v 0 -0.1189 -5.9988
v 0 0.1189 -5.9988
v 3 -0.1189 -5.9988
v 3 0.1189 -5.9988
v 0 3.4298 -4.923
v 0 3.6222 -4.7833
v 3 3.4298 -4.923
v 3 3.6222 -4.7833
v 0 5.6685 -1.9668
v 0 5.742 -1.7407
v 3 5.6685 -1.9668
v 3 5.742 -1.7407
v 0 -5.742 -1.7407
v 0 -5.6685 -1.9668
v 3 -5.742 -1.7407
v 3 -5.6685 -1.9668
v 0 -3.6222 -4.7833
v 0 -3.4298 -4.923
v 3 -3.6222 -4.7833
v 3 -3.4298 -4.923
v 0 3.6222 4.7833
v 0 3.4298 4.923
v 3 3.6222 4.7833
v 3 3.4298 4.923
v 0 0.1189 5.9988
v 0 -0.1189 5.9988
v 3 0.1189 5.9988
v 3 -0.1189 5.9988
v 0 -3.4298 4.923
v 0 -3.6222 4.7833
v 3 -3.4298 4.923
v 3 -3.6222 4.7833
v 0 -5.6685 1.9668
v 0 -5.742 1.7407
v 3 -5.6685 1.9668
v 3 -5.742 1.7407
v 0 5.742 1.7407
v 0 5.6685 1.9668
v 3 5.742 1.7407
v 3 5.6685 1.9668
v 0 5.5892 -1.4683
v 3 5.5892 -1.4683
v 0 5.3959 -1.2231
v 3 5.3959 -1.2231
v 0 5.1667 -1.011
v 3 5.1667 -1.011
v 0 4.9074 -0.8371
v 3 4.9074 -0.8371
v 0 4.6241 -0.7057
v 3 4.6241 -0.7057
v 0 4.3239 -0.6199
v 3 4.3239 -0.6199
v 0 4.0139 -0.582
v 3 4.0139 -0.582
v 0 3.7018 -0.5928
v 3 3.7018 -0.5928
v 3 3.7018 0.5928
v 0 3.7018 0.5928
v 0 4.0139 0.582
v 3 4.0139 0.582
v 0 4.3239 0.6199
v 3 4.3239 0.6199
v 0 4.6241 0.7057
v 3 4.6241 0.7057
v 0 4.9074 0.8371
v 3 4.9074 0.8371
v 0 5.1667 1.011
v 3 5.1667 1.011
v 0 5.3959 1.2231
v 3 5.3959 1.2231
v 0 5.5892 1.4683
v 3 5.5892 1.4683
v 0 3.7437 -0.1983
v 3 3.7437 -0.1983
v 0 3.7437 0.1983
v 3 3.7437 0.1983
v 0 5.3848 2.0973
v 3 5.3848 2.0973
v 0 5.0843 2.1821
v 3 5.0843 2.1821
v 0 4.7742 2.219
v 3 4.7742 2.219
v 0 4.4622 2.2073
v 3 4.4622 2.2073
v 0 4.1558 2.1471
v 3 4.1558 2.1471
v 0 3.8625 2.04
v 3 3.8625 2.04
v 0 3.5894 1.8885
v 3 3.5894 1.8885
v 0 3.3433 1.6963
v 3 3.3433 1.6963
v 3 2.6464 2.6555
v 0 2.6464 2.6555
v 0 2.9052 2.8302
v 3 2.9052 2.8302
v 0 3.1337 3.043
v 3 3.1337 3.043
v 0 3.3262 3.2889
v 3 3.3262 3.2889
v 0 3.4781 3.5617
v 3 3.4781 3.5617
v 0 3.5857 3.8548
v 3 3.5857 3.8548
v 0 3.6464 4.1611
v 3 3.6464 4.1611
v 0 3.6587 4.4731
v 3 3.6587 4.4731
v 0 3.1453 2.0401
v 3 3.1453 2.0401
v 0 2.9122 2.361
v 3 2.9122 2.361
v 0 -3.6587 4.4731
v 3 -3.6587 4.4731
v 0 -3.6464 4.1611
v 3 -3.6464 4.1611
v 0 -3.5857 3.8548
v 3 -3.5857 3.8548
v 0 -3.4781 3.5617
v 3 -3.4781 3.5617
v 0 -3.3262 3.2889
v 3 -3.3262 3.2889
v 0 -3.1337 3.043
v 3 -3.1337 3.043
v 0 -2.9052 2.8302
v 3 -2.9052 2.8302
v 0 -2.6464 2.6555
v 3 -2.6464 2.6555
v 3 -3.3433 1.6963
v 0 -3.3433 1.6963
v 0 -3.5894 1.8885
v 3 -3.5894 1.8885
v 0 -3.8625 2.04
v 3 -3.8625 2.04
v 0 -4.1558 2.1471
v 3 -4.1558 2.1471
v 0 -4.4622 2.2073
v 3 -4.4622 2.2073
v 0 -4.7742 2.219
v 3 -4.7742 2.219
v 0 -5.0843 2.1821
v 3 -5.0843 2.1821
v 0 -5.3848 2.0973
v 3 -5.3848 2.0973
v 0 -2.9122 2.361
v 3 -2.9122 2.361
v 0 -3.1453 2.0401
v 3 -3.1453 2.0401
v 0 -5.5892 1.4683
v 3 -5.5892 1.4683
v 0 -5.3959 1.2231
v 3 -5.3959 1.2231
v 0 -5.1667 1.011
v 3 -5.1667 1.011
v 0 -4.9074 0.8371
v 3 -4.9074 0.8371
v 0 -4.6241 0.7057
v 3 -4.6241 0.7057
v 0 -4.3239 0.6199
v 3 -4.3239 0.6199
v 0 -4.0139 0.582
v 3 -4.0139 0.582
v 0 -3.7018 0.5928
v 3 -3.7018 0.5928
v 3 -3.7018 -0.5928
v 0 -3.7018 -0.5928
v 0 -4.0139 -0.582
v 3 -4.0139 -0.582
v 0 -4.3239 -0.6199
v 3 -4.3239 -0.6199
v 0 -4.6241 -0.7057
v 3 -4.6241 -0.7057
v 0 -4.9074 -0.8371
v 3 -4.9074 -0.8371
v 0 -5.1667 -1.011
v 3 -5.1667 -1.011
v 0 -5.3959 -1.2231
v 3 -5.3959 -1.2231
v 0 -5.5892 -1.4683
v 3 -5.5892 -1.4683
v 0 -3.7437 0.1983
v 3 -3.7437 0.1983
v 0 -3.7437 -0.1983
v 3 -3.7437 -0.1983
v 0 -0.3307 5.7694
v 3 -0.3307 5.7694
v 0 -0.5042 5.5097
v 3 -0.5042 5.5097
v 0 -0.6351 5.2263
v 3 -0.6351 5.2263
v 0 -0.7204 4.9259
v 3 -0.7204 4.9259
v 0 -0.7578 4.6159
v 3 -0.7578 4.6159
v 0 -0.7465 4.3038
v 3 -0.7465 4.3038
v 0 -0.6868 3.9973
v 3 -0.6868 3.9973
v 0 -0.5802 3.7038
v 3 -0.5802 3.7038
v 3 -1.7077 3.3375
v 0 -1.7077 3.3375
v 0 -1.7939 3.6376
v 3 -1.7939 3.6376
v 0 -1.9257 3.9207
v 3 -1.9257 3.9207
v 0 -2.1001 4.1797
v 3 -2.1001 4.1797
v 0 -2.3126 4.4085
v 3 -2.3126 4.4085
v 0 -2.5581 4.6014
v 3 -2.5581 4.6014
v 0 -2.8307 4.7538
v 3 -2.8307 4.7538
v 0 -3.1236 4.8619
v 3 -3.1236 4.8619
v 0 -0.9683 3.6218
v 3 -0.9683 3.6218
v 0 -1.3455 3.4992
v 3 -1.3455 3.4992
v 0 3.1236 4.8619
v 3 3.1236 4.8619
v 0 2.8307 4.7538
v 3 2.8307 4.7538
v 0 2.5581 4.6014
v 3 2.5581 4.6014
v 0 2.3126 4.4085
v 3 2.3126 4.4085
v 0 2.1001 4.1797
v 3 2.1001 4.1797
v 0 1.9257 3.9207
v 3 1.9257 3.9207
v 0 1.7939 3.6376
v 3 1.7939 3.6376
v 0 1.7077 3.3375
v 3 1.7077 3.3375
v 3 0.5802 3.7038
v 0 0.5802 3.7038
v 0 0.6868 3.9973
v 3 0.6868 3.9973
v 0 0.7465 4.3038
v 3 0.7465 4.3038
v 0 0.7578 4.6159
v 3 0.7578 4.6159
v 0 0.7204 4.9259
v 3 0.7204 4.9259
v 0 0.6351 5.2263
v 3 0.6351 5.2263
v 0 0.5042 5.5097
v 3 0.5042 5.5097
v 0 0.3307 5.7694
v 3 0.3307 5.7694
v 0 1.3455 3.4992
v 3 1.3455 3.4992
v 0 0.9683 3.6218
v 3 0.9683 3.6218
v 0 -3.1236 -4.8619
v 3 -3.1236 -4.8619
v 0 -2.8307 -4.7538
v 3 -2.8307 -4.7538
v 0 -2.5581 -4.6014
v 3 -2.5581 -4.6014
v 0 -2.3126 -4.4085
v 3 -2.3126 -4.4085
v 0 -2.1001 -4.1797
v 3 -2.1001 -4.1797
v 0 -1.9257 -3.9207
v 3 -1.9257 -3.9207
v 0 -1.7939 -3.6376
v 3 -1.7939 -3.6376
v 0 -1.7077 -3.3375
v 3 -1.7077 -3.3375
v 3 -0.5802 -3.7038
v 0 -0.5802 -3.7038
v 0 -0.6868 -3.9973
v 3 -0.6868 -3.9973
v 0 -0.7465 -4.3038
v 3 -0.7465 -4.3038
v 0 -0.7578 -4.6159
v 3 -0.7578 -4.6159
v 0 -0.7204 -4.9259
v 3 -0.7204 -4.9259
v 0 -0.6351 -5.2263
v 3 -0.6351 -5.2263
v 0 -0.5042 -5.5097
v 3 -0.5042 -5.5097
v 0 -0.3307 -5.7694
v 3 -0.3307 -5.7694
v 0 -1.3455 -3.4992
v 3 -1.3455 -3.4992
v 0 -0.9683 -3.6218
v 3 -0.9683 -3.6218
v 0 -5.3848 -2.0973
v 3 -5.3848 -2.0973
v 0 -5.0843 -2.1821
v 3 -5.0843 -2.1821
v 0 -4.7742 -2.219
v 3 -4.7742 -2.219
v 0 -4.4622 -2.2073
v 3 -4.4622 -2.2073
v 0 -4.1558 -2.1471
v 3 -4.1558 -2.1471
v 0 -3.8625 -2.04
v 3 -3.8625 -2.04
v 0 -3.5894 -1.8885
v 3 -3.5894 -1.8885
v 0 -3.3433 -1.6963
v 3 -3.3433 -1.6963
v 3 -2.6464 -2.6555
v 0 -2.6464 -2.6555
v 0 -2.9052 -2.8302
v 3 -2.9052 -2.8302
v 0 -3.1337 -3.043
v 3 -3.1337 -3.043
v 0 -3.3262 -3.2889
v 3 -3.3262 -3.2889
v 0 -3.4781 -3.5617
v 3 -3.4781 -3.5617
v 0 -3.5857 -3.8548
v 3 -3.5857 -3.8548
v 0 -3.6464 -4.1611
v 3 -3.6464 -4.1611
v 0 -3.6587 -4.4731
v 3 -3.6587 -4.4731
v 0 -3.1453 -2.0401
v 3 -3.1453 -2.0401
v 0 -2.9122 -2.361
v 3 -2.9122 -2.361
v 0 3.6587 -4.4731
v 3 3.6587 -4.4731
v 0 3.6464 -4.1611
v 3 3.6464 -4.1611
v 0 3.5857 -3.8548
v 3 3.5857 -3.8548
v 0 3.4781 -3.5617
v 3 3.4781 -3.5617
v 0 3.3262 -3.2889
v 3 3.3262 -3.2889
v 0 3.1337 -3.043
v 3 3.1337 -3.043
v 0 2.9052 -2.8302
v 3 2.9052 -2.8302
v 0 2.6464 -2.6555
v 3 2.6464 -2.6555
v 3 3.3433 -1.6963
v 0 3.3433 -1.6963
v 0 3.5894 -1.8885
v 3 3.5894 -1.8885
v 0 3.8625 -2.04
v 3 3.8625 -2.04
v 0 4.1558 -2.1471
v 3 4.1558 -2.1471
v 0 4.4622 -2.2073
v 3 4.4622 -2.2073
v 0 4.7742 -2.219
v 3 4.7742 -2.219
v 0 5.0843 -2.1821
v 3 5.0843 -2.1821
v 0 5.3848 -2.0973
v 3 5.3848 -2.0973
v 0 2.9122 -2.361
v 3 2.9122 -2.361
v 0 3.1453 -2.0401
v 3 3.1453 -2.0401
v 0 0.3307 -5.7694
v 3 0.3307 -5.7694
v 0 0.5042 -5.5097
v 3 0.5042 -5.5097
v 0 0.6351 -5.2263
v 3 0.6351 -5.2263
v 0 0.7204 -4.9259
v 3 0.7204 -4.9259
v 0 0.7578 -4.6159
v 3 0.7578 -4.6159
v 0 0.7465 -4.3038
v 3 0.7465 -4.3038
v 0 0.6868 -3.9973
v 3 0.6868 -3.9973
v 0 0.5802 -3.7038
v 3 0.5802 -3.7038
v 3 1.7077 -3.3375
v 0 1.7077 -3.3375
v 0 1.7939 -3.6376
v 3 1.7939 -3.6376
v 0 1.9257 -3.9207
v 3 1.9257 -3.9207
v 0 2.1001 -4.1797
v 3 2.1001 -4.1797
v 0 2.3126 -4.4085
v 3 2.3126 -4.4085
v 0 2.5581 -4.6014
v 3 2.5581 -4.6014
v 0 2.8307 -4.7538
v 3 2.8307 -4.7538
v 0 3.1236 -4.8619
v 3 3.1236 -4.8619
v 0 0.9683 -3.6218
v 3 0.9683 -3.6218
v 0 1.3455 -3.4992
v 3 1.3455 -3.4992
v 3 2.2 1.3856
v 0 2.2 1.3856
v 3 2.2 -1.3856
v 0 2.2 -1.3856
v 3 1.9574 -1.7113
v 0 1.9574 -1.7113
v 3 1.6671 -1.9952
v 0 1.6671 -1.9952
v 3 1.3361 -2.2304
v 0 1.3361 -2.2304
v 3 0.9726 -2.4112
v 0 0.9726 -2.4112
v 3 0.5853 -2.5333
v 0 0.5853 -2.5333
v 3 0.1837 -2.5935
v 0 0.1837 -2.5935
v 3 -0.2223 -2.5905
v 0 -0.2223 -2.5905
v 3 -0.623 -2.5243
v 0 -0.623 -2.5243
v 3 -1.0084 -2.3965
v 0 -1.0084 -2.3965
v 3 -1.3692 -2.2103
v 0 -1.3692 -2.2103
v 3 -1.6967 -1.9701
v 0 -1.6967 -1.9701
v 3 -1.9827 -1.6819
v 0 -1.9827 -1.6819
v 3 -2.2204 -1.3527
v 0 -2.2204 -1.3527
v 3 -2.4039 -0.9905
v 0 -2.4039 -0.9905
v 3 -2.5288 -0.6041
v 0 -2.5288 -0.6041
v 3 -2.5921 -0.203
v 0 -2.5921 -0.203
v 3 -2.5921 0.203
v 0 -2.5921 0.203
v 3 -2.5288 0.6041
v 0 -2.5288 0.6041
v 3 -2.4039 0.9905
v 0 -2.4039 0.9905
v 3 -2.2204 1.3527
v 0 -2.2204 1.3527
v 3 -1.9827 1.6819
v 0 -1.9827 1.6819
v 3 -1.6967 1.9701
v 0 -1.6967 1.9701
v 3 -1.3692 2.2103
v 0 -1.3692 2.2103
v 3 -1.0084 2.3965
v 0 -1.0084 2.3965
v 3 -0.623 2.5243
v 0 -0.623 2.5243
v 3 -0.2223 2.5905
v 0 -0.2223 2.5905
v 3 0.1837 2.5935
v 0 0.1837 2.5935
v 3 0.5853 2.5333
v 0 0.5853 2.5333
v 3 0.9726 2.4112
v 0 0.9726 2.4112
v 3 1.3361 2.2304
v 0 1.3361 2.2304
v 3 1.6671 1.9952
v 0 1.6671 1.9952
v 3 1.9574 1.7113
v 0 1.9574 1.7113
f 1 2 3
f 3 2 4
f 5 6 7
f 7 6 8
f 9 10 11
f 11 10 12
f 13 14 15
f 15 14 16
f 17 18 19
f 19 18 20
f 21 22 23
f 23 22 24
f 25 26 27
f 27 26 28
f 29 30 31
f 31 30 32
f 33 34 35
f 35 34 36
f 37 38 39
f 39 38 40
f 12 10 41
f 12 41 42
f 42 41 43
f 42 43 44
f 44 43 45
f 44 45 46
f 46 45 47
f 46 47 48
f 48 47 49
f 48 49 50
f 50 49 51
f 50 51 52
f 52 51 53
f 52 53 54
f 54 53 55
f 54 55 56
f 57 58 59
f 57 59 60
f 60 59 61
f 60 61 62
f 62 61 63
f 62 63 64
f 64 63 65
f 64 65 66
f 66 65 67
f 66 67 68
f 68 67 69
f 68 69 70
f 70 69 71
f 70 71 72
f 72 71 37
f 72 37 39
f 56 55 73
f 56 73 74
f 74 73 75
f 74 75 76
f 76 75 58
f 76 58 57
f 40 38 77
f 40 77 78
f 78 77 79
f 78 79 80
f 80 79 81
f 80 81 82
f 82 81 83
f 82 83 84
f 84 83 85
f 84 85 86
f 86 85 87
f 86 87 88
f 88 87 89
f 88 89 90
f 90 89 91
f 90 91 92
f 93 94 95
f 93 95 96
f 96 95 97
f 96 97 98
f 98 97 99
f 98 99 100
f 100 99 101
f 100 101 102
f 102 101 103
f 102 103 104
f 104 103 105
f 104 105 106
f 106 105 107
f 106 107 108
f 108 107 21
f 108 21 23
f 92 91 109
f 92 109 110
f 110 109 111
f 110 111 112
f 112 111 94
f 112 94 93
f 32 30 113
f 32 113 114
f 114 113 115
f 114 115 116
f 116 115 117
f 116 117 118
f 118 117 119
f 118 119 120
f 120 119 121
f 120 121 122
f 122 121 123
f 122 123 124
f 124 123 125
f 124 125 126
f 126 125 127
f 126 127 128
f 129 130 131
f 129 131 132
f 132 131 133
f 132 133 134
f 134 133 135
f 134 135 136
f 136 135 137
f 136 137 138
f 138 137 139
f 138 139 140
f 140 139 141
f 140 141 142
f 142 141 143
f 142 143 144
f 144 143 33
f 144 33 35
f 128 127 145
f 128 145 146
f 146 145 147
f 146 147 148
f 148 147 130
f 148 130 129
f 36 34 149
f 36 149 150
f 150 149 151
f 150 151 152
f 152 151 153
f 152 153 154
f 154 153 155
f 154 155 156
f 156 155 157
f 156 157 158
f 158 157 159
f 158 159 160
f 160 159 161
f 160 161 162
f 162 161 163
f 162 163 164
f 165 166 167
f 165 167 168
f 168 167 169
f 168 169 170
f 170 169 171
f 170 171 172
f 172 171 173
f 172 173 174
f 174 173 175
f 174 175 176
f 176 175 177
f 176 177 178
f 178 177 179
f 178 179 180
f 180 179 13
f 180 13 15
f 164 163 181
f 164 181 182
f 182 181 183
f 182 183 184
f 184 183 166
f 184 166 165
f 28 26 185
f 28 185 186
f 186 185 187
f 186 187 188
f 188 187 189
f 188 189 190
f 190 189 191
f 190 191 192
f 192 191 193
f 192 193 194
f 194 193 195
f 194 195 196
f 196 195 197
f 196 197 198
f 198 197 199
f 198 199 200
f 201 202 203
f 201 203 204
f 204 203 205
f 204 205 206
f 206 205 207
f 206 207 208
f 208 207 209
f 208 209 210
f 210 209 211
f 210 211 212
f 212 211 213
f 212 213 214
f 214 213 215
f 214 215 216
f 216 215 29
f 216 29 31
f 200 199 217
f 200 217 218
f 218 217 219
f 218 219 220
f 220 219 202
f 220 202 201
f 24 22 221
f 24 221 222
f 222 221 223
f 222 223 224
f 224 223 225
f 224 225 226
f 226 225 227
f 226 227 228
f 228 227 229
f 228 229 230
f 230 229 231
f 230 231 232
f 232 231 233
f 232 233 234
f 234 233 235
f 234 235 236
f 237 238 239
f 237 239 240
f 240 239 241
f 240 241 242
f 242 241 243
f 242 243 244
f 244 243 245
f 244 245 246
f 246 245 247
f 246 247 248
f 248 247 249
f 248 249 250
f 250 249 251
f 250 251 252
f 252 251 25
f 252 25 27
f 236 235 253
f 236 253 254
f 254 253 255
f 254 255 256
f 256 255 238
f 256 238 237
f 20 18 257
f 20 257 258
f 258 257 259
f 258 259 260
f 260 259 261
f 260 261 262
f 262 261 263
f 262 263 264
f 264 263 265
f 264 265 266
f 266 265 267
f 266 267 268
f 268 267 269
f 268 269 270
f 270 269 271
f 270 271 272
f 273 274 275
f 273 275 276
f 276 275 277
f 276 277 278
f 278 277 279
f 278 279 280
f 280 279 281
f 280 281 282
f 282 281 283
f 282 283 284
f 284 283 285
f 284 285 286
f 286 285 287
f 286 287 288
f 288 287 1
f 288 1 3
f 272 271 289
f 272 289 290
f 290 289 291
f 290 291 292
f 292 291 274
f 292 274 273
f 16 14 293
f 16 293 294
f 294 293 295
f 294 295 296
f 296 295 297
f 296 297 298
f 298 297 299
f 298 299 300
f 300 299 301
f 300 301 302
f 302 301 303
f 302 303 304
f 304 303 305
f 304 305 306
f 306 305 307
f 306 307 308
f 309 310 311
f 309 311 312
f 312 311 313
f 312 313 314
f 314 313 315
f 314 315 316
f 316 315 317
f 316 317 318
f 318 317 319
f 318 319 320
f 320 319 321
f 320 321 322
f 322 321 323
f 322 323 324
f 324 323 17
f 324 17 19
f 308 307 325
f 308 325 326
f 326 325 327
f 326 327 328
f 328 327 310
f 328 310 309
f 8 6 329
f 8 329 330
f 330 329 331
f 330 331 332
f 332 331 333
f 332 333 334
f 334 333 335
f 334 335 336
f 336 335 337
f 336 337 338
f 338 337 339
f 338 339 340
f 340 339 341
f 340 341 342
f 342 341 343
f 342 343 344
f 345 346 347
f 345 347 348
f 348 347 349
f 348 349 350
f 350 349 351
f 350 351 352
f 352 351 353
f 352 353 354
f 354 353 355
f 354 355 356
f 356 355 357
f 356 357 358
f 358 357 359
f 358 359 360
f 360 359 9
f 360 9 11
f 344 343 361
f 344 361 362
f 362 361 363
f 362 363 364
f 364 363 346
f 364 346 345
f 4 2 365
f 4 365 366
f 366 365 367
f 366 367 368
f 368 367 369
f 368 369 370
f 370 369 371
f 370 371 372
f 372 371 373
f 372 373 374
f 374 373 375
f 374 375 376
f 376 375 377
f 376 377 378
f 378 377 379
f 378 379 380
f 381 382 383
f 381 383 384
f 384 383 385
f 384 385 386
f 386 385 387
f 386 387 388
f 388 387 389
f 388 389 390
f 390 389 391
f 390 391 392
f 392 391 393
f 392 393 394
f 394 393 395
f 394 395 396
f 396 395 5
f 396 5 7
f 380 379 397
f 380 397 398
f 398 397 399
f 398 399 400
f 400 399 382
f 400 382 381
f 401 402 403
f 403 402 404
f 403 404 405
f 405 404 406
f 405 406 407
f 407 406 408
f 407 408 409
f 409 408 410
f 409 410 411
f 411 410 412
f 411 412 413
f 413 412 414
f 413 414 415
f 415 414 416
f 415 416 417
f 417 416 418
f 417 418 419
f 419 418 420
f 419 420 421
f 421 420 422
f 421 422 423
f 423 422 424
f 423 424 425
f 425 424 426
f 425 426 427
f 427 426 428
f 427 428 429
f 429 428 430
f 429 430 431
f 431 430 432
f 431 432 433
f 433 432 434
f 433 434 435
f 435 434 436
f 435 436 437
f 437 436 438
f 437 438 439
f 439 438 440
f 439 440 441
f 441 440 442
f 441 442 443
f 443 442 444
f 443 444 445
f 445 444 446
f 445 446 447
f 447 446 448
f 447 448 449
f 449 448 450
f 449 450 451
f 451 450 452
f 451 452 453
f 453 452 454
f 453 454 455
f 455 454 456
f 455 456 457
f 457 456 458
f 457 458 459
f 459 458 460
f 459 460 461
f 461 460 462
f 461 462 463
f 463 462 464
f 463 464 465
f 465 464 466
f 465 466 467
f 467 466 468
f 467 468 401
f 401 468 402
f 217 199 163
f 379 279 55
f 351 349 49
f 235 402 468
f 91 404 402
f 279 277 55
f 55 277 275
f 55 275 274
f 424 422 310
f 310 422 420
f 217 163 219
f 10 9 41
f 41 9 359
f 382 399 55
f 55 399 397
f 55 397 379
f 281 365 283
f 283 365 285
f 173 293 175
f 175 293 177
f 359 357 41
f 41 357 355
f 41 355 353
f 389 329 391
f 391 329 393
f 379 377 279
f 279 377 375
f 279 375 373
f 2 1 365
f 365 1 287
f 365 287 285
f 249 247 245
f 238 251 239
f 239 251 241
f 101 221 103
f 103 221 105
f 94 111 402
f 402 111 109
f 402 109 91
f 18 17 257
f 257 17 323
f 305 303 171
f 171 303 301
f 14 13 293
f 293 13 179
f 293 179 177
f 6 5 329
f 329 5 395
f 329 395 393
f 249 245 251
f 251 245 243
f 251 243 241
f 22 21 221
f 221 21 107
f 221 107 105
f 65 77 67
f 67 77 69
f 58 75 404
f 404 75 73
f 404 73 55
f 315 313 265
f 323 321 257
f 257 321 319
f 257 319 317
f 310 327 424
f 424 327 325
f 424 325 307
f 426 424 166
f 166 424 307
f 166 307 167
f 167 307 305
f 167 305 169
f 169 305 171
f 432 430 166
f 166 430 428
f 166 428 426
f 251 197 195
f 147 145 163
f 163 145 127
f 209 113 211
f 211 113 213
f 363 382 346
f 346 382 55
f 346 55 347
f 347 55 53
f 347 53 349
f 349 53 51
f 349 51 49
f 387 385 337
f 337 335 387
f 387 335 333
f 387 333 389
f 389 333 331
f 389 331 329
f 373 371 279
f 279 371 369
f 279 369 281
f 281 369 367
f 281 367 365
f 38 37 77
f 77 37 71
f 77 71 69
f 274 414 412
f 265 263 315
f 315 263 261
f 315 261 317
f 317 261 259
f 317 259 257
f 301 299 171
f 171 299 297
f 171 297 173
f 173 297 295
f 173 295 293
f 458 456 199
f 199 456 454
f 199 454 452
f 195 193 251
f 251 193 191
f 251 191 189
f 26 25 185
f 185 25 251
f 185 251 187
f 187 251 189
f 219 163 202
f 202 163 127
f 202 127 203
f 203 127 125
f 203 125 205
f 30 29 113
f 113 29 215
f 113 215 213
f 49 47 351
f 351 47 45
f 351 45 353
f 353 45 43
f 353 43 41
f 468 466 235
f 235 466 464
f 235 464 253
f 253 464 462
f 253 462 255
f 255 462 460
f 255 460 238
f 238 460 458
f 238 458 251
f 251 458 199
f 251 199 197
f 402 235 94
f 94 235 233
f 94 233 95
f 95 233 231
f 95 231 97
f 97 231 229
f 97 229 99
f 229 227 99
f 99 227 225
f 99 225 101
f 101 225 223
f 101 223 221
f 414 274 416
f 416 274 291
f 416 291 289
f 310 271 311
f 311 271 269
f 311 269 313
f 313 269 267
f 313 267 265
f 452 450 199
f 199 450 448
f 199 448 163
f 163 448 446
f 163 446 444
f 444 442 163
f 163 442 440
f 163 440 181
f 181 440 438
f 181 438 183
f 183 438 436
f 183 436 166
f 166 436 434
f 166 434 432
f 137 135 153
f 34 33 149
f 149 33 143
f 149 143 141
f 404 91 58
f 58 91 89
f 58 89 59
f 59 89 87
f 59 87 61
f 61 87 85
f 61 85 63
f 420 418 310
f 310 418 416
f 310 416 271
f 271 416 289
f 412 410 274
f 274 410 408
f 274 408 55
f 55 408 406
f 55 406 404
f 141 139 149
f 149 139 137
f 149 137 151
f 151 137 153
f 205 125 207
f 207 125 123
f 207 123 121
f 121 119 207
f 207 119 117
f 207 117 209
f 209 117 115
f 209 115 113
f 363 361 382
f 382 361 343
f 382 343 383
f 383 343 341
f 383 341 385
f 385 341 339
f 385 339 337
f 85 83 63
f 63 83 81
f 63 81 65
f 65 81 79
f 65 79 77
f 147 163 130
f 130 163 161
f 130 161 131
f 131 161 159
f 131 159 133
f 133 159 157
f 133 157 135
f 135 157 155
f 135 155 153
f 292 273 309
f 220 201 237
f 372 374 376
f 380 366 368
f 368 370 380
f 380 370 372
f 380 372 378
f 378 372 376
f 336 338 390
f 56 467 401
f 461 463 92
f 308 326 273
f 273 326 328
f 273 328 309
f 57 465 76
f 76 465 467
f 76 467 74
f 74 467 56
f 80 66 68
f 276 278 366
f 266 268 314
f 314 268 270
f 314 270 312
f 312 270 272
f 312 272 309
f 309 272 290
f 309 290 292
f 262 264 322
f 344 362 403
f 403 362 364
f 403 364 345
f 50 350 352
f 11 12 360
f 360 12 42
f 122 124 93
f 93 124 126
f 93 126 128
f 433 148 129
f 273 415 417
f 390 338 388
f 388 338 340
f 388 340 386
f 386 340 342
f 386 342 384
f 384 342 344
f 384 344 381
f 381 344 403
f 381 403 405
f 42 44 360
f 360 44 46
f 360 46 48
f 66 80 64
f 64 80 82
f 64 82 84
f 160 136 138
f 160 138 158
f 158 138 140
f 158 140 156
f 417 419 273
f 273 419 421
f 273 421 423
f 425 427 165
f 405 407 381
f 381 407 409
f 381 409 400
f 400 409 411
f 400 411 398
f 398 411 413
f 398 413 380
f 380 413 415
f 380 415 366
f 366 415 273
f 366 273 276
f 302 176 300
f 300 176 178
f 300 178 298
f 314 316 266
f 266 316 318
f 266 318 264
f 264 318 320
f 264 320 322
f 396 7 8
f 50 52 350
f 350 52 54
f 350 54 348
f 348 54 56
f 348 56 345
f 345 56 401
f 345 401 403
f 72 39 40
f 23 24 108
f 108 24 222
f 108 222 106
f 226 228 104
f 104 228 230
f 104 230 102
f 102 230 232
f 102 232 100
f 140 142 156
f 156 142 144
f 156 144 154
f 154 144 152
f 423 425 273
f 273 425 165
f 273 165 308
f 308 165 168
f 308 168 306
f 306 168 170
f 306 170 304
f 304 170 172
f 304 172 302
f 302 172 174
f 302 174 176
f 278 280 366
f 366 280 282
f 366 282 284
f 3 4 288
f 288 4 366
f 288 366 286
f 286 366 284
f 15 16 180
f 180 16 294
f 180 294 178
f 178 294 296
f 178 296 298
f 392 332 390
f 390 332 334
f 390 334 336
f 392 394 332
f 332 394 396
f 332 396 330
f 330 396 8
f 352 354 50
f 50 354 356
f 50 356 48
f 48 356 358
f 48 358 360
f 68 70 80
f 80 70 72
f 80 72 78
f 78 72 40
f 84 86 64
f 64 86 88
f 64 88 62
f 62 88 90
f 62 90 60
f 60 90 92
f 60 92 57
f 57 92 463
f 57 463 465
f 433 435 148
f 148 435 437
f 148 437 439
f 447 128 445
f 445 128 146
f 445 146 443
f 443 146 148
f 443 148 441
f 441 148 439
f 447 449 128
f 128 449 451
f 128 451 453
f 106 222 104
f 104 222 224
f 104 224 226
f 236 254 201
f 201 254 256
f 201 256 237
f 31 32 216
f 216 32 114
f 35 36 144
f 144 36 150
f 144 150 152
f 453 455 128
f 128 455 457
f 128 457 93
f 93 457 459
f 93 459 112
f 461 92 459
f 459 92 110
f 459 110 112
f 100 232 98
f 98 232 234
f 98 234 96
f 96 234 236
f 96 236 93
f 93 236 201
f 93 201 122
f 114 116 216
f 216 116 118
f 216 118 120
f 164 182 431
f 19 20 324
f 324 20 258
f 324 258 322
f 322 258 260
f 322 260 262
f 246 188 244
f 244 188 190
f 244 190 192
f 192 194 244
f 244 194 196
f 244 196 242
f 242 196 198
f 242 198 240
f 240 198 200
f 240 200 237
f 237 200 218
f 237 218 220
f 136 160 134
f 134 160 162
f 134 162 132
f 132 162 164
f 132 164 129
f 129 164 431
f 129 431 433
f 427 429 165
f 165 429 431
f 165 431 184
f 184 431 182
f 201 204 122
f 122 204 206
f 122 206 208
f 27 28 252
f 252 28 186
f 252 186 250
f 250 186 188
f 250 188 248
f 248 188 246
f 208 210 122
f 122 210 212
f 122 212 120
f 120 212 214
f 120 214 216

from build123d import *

# Parameters (mm, degrees)
BASPROSKE_W         = 10
BASPROSKE_H         = 6
TOOTHCUT_DEPTH      = 14.114877049
TEETHCUTS_COUNT     = 10
TEETHCUTS_ANGLE     = 324
BORSKE_R            = 2.5
BORE_DEPTH          = 50.0000508
SKETCH1_R           = 2.5
BOSS_EXTRUDE1_DEPTH = 10
CUT_EXTRUDE2_DEPTH  = 10
CUT_EXTRUDE4_DEPTH  = 12.8
CUT_EXTRUDE5_DEPTH  = 7


with BuildPart() as part:
    # BasProSke → Base-Revolve (revolve)
    with BuildSketch(Plane(origin=(0, 0, 0), x_dir=(1, 0, 0), z_dir=(0, 1, 0)), mode=Mode.PRIVATE) as base_revolve_sk:
        with Locations((5, 3)):
            Rectangle(BASPROSKE_W, BASPROSKE_H)
    revolve(base_revolve_sk.sketch.rotate(Axis((-10, 0, 0), (1, 0, 0)), 180), axis=Axis((-10, 0, 0), (1, 0, 0)))

    # TooCutSke → ToothCut (cut, through all)
    with BuildSketch(Plane(origin=(0, 0, 0), x_dir=(0, 0, -1), z_dir=(1, 0, 0))):
        with BuildLine():
            ThreePointArc((0.59278292, 3.701838653), (0, 3.749), (-0.59278292, 3.701838653))
            ThreePointArc((-0.59278292, 3.701838653), (-0.846593509, 4.924114224), (-1.775771316, 5.757784417))
            ThreePointArc((-1.775771316, 5.757784417), (0, 6.0254), (1.775771316, 5.757784417))
            ThreePointArc((1.775771316, 5.757784417), (0.846593509, 4.924114224), (0.59278292, 3.701838653))
        make_face()
    toothcut = extrude(amount=TOOTHCUT_DEPTH, mode=Mode.SUBTRACT)

    # TeethCuts: ToothCut ×10 about axis
    teethcuts_axis = Axis((-10, 0, 0), (1, 0, 0))
    for i in range(1, TEETHCUTS_COUNT):
        add(toothcut.rotate(teethcuts_axis, i * TEETHCUTS_ANGLE / (TEETHCUTS_COUNT - 1)), mode=Mode.SUBTRACT)

    # BorSke → Bore (cut, symmetric)
    with BuildSketch(Plane(origin=(0, 0, 0), x_dir=(0, 0, -1), z_dir=(1, 0, 0))):
        with Locations(Location((0, 0, 0), (0, 0, 180))):
            Circle(BORSKE_R)
    extrude(amount=BORE_DEPTH, both=True, mode=Mode.SUBTRACT)

    # Sketch1 → Boss-Extrude1 (add)
    with BuildSketch(Plane(origin=(10, 0, 0), x_dir=(0, 0, -1), z_dir=(1, 0, 0))):
        Circle(SKETCH1_R)
    extrude(amount=-BOSS_EXTRUDE1_DEPTH)

    # Sketch2 → Cut-Extrude2 (cut)
    with BuildSketch(Plane.ZY):
        with BuildLine():
            Line((1.187434209, 2.2), (-1.187434209, 2.2))
            ThreePointArc((-1.187434209, 2.2), (-1.280900948, -2.146926352), (2.5, 0))
            ThreePointArc((2.5, 0), (2.146926352, 1.280900948), (1.187434209, 2.2))
        make_face()
    extrude(amount=-CUT_EXTRUDE2_DEPTH, mode=Mode.SUBTRACT)

    # Sketch3 → Cut-Extrude4 (cut)
    with BuildSketch(Plane.ZY):
        with BuildLine():
            ThreePointArc((-1.385640646, 2.2), (0, -2.6), (1.385640646, 2.2))
            Line((1.385640646, 2.2), (-1.385640646, 2.2))
        make_face()
    extrude(amount=-CUT_EXTRUDE4_DEPTH, mode=Mode.SUBTRACT)

    # Sketch4 → Cut-Extrude5 (cut)
    with BuildSketch(Plane(origin=(10, 0, 0), x_dir=(0, 0, -1), z_dir=(1, 0, 0))):
        with BuildLine():
            ThreePointArc((5.99882193, 0.11889261), (4.925863873, 0.720361677), (3.703837769, 0.580160996))
            ThreePointArc((3.703837769, 0.580160996), (3.56551088, 1.158504712), (3.337477777, 1.707701113))
            ThreePointArc((3.337477777, 1.707701113), (4.408525556, 2.3125653), (4.92303221, 3.429832919))
            ThreePointArc((4.92303221, 3.429832919), (4.854101966, 3.526711514), (4.783265565, 3.622205204))
            ThreePointArc((4.783265565, 3.622205204), (3.561689615, 3.478134978), (2.655457622, 2.646421322))
            ThreePointArc((2.655457622, 2.646421322), (2.203606911, 3.033004712), (1.69631471, 3.343279438))
            ThreePointArc((1.69631471, 3.343279438), (2.207280316, 4.462170935), (1.966811514, 5.668478849))
            ThreePointArc((1.966811514, 5.668478849), (1.854101966, 5.706339098), (1.740664331, 5.741958524))
            ThreePointArc((1.740664331, 5.741958524), (0.837070982, 4.907378935), (0.59278292, 3.701838653))
            ThreePointArc((0.59278292, 3.701838653), (0, 3.749), (-0.59278292, 3.701838653))
            ThreePointArc((-0.59278292, 3.701838653), (-0.837070982, 4.907378935), (-1.740664331, 5.741958524))
            ThreePointArc((-1.740664331, 5.741958524), (-1.854101966, 5.706339098), (-1.966811514, 5.668478849))
            ThreePointArc((-1.966811514, 5.668478849), (-2.207280316, 4.462170935), (-1.69631471, 3.343279438))
            ThreePointArc((-1.69631471, 3.343279438), (-2.203606911, 3.033004712), (-2.655457622, 2.646421322))
            ThreePointArc((-2.655457622, 2.646421322), (-3.561689615, 3.478134978), (-4.783265565, 3.622205204))
            ThreePointArc((-4.783265565, 3.622205204), (-4.854101966, 3.526711514), (-4.92303221, 3.429832919))
            ThreePointArc((-4.92303221, 3.429832919), (-4.408525556, 2.3125653), (-3.337477777, 1.707701113))
            ThreePointArc((-3.337477777, 1.707701113), (-3.56551088, 1.158504712), (-3.703837769, 0.580160996))
            ThreePointArc((-3.703837769, 0.580160996), (-4.925863873, 0.720361677), (-5.99882193, 0.11889261))
            ThreePointArc((-5.99882193, 0.11889261), (-6, 0), (-5.99882193, -0.11889261))
            ThreePointArc((-5.99882193, -0.11889261), (-4.925863873, -0.720361677), (-3.703837769, -0.580160996))
            ThreePointArc((-3.703837769, -0.580160996), (-3.56551088, -1.158504712), (-3.337477777, -1.707701113))
            ThreePointArc((-3.337477777, -1.707701113), (-4.408525556, -2.3125653), (-4.92303221, -3.429832919))
            ThreePointArc((-4.92303221, -3.429832919), (-4.854101966, -3.526711514), (-4.783265565, -3.622205204))
            ThreePointArc((-4.783265565, -3.622205204), (-3.561689615, -3.478134978), (-2.655457622, -2.646421322))
            ThreePointArc((-2.655457622, -2.646421322), (-2.203606911, -3.033004712), (-1.69631471, -3.343279438))
            ThreePointArc((-1.69631471, -3.343279438), (-2.207280316, -4.462170935), (-1.966811514, -5.668478849))
            ThreePointArc((-1.966811514, -5.668478849), (-1.854101966, -5.706339098), (-1.740664331, -5.741958524))
            ThreePointArc((-1.740664331, -5.741958524), (-0.837070982, -4.907378935), (-0.59278292, -3.701838653))
            ThreePointArc((-0.59278292, -3.701838653), (0, -3.749), (0.59278292, -3.701838653))
            ThreePointArc((0.59278292, -3.701838653), (0.837070982, -4.907378935), (1.740664331, -5.741958524))
            ThreePointArc((1.740664331, -5.741958524), (1.854101966, -5.706339098), (1.966811514, -5.668478849))
            ThreePointArc((1.966811514, -5.668478849), (2.207280316, -4.462170935), (1.69631471, -3.343279438))
            ThreePointArc((1.69631471, -3.343279438), (2.203606911, -3.033004712), (2.655457622, -2.646421322))
            ThreePointArc((2.655457622, -2.646421322), (3.561689615, -3.478134978), (4.783265565, -3.622205204))
            ThreePointArc((4.783265565, -3.622205204), (4.854101966, -3.526711514), (4.92303221, -3.429832919))
            ThreePointArc((4.92303221, -3.429832919), (4.408525556, -2.3125653), (3.337477777, -1.707701113))
            ThreePointArc((3.337477777, -1.707701113), (3.56551088, -1.158504712), (3.703837769, -0.580160996))
            ThreePointArc((3.703837769, -0.580160996), (4.925863873, -0.720361677), (5.99882193, -0.11889261))
            ThreePointArc((5.99882193, -0.11889261), (6, 0), (5.99882193, 0.11889261))
        make_face()
    extrude(amount=-CUT_EXTRUDE5_DEPTH, mode=Mode.SUBTRACT)


solid = part.part
